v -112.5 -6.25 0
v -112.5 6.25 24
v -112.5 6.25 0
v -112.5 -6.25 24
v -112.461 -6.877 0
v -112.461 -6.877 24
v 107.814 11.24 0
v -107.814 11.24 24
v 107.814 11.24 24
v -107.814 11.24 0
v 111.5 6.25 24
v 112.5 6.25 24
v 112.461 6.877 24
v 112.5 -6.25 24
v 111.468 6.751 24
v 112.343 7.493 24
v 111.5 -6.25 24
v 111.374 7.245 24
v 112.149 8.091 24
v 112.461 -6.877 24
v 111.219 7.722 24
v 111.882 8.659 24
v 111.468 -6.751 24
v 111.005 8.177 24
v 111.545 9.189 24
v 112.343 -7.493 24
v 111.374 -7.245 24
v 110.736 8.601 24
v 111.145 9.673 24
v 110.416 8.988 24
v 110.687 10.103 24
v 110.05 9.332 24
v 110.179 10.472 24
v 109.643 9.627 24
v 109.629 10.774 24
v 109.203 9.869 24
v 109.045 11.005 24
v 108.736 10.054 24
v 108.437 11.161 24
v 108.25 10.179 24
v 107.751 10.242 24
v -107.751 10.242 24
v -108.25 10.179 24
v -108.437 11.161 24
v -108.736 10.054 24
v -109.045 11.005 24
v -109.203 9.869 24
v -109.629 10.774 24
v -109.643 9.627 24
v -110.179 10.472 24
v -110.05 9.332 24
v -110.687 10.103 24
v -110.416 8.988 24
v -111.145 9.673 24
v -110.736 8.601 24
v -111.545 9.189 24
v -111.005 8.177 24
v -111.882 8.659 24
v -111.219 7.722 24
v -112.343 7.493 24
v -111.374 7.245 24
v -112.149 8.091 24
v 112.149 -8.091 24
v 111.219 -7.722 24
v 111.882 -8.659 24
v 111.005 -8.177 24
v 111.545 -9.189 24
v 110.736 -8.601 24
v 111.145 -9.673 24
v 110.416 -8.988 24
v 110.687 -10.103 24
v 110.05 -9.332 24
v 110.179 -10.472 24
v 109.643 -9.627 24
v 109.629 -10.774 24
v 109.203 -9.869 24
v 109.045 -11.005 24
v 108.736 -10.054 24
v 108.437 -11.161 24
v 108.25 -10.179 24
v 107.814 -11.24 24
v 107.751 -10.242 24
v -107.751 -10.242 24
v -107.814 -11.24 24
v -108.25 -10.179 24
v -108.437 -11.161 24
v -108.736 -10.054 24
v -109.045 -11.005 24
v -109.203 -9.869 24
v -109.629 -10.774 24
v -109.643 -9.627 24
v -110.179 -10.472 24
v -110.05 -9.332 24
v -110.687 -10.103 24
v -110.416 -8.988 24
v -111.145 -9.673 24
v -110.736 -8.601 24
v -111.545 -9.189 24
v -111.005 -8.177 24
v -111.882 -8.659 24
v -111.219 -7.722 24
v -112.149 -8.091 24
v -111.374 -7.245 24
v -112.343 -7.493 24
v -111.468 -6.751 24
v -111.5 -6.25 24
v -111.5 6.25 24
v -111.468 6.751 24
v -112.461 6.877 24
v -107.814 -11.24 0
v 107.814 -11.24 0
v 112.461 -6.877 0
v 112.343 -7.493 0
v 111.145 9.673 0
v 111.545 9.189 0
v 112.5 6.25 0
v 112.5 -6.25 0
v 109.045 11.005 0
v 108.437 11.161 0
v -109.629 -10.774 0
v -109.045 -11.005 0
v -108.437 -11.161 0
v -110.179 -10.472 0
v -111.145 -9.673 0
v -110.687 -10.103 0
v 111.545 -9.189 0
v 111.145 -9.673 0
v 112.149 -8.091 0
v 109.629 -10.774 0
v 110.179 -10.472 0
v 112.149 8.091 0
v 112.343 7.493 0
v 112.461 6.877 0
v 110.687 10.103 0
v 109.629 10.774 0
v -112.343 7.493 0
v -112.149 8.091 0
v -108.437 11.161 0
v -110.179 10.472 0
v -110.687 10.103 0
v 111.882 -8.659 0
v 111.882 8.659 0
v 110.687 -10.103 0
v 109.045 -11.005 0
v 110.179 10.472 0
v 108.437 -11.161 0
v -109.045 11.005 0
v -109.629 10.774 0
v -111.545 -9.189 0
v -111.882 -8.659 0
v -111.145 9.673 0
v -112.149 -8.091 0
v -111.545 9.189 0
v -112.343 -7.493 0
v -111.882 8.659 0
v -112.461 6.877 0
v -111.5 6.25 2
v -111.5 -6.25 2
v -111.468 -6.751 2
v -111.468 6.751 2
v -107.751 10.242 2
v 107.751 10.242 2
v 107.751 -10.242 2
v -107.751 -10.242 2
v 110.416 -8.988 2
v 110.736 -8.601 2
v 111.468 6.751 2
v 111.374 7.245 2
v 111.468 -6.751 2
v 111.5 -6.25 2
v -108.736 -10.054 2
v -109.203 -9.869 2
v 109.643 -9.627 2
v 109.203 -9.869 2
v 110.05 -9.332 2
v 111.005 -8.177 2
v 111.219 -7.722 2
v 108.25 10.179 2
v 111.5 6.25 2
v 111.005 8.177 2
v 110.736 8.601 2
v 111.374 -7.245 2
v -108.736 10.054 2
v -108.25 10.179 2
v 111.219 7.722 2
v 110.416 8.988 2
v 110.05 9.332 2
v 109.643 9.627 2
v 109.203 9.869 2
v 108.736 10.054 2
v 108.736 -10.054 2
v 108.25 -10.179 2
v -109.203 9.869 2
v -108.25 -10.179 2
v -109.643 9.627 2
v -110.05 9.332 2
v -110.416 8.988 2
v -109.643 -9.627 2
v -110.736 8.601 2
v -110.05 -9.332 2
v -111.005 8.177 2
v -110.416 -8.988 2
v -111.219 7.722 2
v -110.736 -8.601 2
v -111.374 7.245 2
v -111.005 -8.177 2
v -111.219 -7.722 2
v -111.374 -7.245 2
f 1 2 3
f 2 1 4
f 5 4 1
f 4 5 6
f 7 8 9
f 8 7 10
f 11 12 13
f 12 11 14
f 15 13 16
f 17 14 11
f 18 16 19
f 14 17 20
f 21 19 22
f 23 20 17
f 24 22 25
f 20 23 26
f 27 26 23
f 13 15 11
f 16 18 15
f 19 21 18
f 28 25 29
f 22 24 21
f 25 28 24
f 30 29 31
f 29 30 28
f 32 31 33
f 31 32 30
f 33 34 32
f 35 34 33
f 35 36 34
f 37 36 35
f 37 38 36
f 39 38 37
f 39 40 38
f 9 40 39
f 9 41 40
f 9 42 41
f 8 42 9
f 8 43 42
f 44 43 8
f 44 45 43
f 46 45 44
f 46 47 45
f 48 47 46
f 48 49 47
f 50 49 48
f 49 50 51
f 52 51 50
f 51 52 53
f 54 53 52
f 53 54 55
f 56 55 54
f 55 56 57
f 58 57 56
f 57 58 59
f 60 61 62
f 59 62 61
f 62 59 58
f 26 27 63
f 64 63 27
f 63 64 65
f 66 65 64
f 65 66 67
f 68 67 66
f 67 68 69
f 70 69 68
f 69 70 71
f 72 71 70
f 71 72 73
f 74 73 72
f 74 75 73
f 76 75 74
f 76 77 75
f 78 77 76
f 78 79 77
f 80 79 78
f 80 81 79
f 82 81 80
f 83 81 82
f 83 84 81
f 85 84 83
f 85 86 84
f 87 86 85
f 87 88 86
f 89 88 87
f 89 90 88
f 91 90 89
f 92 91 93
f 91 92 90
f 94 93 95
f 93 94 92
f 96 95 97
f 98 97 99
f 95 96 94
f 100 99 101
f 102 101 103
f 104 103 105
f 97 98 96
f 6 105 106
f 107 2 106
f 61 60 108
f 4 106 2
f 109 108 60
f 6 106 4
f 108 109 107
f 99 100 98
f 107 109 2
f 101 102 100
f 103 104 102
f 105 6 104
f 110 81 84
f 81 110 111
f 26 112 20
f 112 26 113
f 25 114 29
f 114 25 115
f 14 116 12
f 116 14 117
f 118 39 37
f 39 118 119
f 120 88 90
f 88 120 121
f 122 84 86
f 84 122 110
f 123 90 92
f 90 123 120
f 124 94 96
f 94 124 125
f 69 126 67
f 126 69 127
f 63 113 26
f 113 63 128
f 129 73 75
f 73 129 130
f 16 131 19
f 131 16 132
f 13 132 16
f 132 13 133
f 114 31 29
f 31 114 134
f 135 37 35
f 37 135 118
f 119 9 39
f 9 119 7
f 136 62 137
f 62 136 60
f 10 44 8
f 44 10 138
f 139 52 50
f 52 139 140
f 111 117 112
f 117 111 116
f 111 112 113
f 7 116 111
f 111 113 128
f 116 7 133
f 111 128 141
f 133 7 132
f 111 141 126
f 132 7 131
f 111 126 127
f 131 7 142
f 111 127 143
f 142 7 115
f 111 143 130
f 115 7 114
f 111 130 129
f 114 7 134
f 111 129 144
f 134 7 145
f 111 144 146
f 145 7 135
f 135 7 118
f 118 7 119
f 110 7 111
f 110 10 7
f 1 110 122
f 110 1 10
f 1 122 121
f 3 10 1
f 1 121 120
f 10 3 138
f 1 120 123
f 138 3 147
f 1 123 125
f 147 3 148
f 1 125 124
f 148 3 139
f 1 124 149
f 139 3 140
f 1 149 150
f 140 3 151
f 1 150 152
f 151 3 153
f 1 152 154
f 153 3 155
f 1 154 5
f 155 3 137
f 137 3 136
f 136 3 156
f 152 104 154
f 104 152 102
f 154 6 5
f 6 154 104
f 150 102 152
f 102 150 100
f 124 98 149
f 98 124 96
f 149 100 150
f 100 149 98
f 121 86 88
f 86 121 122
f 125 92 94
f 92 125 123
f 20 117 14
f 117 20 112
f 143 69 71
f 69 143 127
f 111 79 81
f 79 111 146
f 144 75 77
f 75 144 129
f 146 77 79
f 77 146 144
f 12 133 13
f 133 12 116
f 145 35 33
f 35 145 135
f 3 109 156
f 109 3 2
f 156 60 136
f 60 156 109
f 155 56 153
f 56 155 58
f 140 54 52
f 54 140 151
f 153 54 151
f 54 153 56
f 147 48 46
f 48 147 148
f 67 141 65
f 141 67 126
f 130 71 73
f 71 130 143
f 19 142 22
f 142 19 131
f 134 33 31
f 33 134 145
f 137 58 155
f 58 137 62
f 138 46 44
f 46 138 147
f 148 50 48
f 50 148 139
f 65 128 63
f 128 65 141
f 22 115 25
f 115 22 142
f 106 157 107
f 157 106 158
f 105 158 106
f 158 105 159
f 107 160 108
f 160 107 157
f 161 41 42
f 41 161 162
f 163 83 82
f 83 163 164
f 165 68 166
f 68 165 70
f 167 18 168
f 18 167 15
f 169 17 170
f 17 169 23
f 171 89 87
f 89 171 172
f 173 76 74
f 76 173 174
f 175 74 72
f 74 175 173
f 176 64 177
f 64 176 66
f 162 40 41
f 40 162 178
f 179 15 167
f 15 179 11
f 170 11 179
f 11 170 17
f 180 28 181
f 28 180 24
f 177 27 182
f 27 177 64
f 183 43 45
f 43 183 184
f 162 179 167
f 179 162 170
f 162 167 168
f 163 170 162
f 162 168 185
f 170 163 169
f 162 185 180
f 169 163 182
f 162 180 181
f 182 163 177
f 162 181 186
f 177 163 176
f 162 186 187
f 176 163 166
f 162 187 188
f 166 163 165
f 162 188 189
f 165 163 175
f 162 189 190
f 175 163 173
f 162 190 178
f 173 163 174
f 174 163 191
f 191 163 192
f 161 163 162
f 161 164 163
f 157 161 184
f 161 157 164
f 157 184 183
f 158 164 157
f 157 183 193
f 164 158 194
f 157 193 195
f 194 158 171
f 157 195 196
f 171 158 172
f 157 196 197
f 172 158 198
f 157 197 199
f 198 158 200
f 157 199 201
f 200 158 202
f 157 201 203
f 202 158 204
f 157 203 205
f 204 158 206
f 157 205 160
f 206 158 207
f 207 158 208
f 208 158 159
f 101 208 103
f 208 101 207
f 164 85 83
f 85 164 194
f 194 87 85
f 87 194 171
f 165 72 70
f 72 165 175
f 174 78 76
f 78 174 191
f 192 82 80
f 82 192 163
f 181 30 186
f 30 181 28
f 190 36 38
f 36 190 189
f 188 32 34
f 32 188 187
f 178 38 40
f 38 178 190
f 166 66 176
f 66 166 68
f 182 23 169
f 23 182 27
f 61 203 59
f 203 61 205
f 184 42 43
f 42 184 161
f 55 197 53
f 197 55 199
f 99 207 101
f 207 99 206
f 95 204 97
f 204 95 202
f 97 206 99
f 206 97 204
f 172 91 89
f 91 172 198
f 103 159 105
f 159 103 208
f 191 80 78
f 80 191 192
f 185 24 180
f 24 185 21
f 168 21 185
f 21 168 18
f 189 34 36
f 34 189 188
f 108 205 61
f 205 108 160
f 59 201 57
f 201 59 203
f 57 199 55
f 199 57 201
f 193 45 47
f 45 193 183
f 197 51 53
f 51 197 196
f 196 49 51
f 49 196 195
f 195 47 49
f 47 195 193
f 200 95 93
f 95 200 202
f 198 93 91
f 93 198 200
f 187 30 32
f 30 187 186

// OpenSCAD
$fn = 50;


difference() {
	union() {
		hull() {
			translate(v = [-107.5000000000, 6.2500000000, 0]) {
				cylinder(h = 24, r = 5);
			}
			translate(v = [107.5000000000, 6.2500000000, 0]) {
				cylinder(h = 24, r = 5);
			}
			translate(v = [-107.5000000000, -6.2500000000, 0]) {
				cylinder(h = 24, r = 5);
			}
			translate(v = [107.5000000000, -6.2500000000, 0]) {
				cylinder(h = 24, r = 5);
			}
		}
	}
	union() {
		translate(v = [0, 0, 2]) {
			hull() {
				translate(v = [-107.5000000000, 6.2500000000, 0]) {
					cylinder(h = 22, r = 4);
				}
				translate(v = [107.5000000000, 6.2500000000, 0]) {
					cylinder(h = 22, r = 4);
				}
				translate(v = [-107.5000000000, -6.2500000000, 0]) {
					cylinder(h = 22, r = 4);
				}
				translate(v = [107.5000000000, -6.2500000000, 0]) {
					cylinder(h = 22, r = 4);
				}
			}
		}
	}
}
